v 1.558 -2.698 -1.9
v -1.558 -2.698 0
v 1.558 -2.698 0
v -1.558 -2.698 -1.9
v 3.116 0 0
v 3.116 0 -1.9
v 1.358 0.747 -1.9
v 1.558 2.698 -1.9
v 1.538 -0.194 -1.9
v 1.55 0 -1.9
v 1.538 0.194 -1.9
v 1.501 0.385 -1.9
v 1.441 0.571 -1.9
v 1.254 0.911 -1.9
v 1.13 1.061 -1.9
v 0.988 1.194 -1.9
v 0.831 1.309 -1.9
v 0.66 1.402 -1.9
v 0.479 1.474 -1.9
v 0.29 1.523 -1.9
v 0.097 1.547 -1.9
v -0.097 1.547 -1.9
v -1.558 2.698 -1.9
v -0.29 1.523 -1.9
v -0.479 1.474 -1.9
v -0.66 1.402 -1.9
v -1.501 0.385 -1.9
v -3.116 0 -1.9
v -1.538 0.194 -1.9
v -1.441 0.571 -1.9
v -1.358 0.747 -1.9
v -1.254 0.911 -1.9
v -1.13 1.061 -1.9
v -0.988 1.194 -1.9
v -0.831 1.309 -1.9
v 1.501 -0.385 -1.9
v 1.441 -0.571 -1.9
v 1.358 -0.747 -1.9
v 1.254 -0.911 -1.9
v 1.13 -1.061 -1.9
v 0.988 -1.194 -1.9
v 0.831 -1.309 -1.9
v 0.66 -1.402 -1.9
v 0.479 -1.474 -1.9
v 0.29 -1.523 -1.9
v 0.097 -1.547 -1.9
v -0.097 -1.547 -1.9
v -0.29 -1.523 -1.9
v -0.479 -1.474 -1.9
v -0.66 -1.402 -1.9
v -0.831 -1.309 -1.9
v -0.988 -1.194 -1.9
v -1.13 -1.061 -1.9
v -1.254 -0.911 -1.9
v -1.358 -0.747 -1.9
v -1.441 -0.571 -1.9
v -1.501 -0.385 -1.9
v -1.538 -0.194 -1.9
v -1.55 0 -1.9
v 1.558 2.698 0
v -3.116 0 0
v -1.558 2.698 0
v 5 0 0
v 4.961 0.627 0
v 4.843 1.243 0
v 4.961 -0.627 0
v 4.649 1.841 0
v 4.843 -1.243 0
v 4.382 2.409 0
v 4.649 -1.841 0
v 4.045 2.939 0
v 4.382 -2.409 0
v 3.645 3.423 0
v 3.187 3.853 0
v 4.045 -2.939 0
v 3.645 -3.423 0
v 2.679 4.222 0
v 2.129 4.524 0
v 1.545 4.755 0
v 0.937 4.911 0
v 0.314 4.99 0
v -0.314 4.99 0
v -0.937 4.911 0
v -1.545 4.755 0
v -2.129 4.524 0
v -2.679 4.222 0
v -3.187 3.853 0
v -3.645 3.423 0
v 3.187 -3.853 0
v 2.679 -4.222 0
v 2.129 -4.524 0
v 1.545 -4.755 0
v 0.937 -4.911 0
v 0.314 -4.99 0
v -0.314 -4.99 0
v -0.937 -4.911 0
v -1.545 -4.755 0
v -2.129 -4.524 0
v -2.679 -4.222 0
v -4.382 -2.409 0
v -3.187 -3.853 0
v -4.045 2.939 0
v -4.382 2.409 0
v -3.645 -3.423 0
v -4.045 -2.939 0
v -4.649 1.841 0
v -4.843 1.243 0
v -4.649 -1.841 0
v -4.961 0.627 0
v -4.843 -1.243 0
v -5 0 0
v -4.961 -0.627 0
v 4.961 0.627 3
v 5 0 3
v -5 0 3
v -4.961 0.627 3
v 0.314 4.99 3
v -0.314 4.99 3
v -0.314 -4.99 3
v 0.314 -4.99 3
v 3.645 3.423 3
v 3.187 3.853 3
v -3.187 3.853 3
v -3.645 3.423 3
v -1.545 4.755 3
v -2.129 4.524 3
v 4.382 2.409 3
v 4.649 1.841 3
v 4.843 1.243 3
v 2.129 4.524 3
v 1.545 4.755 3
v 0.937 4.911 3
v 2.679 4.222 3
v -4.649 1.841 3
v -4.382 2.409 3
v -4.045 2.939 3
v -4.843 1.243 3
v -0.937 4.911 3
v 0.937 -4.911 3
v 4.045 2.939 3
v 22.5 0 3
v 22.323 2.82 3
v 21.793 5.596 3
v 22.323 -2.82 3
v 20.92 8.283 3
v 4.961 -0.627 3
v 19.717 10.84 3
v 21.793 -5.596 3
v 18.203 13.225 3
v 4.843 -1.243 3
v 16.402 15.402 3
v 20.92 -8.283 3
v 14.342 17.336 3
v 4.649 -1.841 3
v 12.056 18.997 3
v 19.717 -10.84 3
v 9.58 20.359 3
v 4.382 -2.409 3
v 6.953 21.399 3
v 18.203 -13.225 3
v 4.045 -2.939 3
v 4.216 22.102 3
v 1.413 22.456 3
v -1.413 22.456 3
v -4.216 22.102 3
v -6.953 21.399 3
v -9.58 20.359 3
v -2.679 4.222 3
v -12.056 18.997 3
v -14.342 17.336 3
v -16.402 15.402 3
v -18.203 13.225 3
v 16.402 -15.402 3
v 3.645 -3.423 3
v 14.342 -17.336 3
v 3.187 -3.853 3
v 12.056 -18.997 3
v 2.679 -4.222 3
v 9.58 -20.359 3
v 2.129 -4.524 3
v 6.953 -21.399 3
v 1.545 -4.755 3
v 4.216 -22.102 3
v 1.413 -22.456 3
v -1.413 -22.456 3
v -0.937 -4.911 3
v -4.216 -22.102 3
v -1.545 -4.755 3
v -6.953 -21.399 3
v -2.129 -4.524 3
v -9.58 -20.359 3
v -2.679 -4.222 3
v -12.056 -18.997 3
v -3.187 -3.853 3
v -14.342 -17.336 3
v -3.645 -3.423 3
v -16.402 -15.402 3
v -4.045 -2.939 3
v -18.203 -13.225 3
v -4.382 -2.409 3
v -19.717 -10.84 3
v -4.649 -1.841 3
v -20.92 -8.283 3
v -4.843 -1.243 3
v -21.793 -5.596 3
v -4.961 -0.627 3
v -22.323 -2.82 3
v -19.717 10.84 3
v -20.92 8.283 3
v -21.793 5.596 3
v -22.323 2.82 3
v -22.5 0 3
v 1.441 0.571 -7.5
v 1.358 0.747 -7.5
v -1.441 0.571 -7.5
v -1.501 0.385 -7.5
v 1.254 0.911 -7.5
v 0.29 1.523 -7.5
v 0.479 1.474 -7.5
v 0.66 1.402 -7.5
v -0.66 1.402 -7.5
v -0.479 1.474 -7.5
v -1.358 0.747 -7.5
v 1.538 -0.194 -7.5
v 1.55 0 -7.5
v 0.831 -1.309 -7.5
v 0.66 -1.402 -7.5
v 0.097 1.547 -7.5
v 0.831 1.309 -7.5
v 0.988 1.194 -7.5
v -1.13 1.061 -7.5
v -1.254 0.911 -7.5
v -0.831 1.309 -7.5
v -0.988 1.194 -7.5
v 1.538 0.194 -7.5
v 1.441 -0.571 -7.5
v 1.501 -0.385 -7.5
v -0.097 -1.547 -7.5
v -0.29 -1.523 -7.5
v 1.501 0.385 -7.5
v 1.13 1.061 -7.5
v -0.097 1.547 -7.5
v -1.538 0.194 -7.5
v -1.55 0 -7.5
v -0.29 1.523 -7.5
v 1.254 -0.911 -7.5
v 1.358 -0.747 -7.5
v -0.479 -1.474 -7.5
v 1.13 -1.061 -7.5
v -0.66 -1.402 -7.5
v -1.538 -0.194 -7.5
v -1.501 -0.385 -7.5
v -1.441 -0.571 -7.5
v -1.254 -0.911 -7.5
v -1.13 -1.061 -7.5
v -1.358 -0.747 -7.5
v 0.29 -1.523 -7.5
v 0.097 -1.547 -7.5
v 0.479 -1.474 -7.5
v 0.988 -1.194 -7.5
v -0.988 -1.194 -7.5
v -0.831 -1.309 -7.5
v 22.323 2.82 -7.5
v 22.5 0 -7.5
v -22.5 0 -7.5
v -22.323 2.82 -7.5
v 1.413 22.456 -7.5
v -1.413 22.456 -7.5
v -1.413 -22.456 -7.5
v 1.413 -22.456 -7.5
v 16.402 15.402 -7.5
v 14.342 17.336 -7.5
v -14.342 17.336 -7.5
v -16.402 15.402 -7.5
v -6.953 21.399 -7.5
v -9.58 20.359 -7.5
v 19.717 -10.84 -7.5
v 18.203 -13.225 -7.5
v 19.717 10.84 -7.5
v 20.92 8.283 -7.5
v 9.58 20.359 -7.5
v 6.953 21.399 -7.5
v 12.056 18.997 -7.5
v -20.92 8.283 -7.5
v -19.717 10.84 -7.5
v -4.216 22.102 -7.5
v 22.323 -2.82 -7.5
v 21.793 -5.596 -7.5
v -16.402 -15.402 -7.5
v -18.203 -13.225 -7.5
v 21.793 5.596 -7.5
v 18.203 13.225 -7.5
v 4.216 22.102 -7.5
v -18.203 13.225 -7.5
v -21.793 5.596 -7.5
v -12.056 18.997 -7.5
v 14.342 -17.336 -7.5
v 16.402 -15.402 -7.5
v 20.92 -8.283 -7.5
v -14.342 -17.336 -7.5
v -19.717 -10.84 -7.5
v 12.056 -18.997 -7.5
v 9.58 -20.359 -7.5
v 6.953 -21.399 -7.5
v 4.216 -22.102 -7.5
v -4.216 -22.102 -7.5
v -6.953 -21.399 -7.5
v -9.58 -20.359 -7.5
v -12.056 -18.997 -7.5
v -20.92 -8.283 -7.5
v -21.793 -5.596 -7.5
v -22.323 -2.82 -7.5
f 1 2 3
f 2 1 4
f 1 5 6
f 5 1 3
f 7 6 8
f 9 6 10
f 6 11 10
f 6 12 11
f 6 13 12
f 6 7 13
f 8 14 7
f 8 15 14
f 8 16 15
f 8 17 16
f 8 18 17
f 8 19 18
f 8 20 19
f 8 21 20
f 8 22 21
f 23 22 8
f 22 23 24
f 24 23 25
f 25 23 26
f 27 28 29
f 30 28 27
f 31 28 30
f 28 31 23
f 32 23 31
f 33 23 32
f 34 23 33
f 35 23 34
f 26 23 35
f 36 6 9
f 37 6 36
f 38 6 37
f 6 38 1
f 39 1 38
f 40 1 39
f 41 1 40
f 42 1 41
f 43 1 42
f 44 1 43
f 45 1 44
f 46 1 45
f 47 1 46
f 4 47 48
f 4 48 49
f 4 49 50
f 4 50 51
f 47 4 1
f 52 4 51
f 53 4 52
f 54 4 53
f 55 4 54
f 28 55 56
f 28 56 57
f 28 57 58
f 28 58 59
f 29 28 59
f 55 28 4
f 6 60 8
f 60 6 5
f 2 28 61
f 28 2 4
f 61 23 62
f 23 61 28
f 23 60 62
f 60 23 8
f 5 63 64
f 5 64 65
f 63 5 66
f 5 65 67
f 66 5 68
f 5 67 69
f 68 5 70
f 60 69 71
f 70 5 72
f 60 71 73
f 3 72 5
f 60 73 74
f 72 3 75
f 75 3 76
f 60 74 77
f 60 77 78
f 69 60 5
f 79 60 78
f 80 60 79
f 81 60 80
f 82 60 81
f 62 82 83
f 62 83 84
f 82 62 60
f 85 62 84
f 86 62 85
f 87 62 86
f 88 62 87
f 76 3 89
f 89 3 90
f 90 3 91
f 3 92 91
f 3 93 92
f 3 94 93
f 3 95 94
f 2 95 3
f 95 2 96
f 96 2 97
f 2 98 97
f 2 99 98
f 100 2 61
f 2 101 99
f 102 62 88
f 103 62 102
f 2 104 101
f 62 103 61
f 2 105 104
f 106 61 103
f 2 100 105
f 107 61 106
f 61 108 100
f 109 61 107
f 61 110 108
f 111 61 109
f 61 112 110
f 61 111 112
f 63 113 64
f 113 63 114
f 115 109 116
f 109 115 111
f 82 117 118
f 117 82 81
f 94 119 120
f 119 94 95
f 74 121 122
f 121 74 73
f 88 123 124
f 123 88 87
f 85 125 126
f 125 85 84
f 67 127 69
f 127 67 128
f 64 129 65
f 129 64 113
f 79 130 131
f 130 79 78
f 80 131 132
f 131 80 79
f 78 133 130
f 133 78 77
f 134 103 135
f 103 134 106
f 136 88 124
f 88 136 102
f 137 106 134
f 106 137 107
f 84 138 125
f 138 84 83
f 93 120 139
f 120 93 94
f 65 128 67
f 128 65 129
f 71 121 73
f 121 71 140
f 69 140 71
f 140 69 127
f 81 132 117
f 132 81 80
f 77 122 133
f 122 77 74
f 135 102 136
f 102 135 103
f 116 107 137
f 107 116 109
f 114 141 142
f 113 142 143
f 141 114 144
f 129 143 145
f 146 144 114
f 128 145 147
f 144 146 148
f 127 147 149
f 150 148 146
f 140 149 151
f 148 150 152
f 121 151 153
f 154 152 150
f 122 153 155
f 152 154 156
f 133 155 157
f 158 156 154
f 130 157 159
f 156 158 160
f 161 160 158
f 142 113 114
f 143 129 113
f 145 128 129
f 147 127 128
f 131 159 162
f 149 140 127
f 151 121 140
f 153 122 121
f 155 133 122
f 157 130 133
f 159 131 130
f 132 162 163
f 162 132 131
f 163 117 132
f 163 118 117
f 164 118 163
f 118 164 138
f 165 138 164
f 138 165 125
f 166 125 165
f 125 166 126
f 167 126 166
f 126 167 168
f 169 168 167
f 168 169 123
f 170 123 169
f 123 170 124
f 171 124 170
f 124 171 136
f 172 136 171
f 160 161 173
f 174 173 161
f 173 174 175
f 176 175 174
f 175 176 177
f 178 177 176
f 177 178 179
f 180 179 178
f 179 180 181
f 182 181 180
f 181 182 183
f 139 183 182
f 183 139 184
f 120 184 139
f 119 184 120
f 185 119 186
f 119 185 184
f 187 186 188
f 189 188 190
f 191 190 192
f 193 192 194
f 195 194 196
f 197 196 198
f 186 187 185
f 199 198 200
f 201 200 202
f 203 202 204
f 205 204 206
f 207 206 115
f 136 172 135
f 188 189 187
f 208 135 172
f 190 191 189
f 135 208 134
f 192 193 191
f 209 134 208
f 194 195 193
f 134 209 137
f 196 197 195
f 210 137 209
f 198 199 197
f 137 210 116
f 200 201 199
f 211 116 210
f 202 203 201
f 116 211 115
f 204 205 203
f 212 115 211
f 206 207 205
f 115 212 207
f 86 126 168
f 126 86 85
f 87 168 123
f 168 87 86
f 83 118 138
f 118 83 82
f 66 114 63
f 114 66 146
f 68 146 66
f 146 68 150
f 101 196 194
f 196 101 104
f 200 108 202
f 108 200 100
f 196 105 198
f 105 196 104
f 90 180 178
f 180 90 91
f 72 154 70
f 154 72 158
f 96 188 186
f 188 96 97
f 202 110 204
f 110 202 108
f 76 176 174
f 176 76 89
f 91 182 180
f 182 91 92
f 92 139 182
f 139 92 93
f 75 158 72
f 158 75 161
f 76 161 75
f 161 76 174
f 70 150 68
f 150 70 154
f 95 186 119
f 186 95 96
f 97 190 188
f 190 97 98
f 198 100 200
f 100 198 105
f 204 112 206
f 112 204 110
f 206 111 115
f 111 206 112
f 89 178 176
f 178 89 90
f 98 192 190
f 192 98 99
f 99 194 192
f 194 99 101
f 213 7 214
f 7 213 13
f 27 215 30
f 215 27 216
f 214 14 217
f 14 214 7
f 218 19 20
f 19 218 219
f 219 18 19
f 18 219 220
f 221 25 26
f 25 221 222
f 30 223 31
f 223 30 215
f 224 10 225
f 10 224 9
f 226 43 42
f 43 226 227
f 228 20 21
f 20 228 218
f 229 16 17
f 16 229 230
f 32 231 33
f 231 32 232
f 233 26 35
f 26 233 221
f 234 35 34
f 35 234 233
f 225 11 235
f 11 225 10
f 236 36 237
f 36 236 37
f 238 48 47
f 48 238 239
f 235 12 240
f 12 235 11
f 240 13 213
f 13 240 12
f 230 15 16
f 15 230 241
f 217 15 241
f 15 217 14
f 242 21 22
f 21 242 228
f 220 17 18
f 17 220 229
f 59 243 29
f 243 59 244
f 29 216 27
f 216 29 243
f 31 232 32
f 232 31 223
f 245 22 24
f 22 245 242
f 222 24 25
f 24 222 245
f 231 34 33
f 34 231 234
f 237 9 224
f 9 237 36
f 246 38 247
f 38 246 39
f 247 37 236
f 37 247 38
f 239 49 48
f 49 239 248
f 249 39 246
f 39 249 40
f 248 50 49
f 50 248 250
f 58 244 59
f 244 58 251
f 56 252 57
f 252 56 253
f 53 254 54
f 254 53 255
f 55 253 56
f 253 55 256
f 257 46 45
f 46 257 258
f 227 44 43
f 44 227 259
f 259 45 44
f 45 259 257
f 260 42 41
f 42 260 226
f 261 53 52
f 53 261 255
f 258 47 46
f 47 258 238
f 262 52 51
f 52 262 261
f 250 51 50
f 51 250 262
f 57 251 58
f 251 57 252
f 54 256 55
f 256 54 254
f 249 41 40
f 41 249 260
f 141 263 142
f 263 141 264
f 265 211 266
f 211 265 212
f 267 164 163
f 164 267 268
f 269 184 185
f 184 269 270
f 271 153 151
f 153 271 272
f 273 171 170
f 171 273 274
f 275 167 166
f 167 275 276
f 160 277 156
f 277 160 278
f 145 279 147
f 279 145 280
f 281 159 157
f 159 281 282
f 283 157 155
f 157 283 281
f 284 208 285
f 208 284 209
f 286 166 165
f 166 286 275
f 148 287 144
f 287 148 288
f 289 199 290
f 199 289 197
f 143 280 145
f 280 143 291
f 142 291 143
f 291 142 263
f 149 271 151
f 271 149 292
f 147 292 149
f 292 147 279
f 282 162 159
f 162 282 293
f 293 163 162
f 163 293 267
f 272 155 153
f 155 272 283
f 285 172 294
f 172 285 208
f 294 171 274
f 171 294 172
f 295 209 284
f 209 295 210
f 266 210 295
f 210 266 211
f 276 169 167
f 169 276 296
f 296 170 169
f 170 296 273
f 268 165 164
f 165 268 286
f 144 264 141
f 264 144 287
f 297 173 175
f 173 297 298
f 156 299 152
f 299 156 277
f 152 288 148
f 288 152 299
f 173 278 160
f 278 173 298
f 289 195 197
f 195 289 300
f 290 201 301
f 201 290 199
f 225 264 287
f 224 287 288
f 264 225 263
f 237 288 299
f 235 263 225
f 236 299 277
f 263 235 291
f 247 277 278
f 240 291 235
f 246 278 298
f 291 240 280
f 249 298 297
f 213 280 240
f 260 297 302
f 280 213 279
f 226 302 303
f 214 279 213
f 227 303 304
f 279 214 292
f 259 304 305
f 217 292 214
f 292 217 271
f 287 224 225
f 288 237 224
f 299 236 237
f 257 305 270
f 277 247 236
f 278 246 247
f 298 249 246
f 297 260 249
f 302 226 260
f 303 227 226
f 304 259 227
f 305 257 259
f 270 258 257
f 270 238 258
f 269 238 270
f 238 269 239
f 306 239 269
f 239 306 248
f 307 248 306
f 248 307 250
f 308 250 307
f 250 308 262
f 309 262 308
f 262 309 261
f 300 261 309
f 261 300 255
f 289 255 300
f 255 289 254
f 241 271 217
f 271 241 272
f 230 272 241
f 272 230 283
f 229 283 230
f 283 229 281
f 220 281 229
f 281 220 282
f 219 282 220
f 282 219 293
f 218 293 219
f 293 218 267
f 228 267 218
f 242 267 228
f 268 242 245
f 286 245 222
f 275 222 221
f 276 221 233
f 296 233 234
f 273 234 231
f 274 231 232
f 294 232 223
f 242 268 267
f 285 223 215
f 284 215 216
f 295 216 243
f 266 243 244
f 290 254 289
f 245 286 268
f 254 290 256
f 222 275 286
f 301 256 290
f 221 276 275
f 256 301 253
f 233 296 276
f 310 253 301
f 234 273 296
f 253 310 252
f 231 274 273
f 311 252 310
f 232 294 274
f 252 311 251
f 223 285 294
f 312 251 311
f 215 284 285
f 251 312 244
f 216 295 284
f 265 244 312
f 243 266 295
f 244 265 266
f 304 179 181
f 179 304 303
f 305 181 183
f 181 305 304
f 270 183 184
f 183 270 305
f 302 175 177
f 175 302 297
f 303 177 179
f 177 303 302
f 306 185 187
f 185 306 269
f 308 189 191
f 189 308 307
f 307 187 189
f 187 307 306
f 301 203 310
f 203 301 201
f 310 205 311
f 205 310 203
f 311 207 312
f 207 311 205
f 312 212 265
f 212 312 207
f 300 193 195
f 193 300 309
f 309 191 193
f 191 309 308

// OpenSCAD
$fn = 50;


difference() {
	union() {
		translate(v = [0, 0, -7.5000000000]) {
			cylinder(h = 10.5000000000, r = 22.5000000000);
		}
	}
	union() {
		translate(v = [0, 0, 0]) {
			rotate(a = [0, 0, 0]) {
				difference() {
					union() {
						translate(v = [0, 0, -1.9000000000]) {
							linear_extrude(height = 1.9000000000) {
								polygon(points = [[3.1158000000, 0.0000000000], [1.5579000000, 2.6983619531], [-1.5579000000, 2.6983619531], [-3.1158000000, 0.0000000000], [-1.5579000000, -2.6983619531], [1.5579000000, -2.6983619531]]);
							}
						}
					}
					union();
				}
			}
		}
		#cylinder(h = 3, r = 5.0000000000);
		#translate(v = [0, 0, -100.0000000000]) {
			cylinder(h = 200, r = 1.5500000000);
		}
	}
}
